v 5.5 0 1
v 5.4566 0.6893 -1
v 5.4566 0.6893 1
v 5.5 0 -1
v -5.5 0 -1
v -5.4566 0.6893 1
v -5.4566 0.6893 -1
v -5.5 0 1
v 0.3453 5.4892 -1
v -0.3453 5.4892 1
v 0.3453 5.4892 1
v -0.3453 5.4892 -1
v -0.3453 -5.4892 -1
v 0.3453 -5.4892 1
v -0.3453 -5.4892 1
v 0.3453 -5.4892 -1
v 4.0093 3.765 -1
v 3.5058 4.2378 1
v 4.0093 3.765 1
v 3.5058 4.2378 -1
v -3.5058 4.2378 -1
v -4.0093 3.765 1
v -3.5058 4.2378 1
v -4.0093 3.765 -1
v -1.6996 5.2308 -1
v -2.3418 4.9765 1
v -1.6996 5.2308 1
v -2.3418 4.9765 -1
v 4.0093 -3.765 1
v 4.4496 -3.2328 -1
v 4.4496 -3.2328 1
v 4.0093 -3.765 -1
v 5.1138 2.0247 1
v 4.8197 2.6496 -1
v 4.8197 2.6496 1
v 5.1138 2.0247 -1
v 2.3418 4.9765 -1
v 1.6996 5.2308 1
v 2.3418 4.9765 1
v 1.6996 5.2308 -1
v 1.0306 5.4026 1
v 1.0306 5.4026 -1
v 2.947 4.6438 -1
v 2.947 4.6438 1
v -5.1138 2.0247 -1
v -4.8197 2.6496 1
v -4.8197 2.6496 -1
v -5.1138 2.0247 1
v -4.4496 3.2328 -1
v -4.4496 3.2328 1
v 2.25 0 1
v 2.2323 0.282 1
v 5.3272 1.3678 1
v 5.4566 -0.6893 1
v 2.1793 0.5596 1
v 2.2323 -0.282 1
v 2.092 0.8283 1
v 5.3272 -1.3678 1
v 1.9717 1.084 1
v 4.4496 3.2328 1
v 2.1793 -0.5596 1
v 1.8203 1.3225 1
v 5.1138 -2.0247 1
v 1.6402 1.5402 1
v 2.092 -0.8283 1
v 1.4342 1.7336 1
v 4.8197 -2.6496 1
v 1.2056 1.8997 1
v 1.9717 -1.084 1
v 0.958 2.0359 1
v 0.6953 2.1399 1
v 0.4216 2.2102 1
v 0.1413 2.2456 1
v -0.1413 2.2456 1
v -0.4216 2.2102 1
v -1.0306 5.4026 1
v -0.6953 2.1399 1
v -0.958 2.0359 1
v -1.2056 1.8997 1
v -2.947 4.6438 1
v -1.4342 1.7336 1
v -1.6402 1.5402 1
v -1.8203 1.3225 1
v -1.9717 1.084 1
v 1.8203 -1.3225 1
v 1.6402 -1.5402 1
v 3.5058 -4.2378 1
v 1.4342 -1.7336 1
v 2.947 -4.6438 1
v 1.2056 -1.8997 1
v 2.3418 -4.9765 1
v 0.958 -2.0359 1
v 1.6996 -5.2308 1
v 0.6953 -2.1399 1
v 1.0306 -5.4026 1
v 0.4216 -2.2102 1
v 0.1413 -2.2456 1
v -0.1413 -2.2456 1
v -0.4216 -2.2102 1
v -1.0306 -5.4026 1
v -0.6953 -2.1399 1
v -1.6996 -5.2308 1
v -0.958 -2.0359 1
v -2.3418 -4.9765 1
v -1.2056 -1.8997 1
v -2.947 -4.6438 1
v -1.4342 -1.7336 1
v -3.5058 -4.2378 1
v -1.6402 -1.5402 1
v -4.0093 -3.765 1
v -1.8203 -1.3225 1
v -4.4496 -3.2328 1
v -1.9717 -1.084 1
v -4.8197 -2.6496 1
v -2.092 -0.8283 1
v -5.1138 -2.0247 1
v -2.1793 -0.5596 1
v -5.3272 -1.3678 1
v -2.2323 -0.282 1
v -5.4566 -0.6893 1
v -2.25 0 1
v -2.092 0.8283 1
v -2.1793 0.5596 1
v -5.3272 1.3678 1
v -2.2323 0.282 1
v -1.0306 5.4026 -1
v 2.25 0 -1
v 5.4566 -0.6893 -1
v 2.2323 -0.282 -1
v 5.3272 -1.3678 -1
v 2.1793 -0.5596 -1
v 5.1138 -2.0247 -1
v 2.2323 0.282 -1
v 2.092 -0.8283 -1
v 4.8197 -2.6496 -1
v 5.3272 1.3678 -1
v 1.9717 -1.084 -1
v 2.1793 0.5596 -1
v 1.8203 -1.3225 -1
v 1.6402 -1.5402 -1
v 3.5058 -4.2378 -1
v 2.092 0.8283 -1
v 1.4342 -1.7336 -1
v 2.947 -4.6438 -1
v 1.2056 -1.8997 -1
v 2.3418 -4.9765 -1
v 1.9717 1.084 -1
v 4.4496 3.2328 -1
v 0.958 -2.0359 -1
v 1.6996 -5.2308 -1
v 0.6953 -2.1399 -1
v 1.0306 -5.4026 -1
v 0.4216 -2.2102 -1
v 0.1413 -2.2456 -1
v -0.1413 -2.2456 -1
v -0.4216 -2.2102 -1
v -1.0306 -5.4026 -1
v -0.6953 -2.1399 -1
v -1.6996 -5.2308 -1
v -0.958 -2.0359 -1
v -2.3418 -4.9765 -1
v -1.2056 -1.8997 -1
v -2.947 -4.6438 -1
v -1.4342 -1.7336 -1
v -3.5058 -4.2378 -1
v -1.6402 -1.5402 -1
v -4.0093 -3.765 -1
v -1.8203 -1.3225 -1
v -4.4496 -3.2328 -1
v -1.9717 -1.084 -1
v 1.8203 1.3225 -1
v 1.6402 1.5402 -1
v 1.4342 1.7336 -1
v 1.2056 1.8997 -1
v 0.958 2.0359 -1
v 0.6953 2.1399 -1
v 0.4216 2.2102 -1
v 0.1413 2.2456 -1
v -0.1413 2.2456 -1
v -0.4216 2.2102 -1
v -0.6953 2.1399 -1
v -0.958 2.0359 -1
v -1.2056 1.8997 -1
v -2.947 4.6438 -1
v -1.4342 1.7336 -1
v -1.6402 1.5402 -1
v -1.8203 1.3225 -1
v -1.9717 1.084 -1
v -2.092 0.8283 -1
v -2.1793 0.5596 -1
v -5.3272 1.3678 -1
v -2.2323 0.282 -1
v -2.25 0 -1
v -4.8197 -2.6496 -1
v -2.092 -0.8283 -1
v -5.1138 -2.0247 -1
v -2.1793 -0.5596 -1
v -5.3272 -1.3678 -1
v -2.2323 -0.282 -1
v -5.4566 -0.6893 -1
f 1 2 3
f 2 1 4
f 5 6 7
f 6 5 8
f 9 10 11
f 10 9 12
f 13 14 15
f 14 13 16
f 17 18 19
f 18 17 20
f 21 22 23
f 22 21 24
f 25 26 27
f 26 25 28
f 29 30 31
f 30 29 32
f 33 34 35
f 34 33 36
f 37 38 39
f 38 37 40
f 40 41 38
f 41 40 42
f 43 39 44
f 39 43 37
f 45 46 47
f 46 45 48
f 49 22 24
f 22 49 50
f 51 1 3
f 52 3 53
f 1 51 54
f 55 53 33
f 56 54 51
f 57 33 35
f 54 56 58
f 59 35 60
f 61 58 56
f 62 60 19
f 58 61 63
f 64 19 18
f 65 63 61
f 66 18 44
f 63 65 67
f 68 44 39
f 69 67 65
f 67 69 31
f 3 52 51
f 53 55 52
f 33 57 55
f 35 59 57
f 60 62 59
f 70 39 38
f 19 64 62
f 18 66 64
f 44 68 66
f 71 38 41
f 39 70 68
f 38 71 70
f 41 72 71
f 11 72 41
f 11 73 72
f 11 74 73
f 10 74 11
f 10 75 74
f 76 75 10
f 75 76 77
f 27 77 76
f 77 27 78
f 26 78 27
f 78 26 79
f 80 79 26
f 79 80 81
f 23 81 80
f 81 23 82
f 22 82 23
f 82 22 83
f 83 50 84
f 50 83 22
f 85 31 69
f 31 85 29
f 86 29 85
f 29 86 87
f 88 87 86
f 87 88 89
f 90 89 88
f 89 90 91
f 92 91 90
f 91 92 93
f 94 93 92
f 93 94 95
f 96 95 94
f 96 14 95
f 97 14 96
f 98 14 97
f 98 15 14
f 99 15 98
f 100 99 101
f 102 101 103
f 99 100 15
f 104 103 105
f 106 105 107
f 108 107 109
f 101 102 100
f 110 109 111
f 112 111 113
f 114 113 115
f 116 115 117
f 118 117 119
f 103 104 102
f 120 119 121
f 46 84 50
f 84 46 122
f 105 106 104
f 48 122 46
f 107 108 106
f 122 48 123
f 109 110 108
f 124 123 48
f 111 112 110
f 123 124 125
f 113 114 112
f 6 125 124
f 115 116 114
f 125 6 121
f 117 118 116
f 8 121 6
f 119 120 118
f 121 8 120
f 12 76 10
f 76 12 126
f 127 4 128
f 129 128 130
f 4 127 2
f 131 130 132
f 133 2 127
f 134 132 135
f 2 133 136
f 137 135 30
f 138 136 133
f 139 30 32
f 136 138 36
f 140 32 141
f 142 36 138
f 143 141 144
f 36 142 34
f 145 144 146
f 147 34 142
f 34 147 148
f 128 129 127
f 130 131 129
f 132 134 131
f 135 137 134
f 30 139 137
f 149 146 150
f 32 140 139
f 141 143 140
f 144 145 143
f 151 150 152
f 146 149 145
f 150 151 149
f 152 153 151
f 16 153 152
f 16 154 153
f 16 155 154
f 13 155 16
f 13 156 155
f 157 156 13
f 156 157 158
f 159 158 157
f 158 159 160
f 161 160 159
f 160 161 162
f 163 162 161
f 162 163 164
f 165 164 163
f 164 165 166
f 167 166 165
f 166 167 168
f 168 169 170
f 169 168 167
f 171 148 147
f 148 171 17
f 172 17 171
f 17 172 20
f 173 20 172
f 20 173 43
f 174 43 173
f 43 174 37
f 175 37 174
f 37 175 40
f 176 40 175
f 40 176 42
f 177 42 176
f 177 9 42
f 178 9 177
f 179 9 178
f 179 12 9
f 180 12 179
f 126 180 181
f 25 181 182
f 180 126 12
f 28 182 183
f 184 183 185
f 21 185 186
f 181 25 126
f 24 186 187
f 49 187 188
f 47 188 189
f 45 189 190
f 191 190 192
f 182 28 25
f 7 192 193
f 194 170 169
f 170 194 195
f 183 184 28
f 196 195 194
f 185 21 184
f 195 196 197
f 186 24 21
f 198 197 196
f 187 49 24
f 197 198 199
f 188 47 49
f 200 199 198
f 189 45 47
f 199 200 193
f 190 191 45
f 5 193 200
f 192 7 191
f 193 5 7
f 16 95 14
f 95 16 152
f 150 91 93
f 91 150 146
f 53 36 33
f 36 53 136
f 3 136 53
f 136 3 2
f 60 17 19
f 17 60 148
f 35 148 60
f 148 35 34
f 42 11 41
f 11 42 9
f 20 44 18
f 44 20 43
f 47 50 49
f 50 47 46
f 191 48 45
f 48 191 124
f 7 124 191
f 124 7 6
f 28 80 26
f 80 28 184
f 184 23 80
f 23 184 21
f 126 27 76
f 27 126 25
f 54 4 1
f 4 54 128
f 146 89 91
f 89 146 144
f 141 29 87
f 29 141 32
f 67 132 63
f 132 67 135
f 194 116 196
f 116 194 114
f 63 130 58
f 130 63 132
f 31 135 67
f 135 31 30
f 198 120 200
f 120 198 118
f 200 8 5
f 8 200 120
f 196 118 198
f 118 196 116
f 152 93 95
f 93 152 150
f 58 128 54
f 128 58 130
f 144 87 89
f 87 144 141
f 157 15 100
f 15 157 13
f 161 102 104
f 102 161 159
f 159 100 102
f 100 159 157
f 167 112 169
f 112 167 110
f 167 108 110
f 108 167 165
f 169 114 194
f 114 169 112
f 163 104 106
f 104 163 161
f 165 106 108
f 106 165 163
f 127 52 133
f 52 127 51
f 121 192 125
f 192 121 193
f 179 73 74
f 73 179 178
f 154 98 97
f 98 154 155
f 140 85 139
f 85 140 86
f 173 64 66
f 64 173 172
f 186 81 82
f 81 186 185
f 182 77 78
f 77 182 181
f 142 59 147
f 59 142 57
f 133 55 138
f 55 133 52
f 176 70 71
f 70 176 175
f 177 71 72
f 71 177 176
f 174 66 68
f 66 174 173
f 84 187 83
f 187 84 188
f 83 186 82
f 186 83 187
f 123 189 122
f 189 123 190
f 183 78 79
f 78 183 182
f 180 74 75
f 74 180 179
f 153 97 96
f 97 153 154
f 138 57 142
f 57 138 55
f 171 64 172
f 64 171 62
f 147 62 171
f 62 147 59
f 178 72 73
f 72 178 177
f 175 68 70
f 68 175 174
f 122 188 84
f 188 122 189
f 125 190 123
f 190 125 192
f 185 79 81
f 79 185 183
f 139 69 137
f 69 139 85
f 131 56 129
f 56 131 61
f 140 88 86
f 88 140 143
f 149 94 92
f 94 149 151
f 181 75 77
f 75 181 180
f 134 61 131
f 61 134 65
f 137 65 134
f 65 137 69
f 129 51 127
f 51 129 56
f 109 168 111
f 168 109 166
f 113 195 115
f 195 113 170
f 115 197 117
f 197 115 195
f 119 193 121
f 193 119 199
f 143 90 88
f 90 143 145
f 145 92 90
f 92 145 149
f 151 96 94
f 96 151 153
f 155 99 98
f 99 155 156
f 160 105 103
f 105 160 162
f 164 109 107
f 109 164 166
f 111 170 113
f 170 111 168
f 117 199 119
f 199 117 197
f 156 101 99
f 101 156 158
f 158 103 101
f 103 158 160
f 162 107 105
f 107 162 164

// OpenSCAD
$fn = 50;


difference() {
	union() {
		translate(v = [0, 0, -1.0000000000]) {
			cylinder(h = 2, r = 5.5000000000);
		}
	}
	union() {
		translate(v = [0, 0, -100.0000000000]) {
			cylinder(h = 200, r = 2.2500000000);
		}
	}
}
